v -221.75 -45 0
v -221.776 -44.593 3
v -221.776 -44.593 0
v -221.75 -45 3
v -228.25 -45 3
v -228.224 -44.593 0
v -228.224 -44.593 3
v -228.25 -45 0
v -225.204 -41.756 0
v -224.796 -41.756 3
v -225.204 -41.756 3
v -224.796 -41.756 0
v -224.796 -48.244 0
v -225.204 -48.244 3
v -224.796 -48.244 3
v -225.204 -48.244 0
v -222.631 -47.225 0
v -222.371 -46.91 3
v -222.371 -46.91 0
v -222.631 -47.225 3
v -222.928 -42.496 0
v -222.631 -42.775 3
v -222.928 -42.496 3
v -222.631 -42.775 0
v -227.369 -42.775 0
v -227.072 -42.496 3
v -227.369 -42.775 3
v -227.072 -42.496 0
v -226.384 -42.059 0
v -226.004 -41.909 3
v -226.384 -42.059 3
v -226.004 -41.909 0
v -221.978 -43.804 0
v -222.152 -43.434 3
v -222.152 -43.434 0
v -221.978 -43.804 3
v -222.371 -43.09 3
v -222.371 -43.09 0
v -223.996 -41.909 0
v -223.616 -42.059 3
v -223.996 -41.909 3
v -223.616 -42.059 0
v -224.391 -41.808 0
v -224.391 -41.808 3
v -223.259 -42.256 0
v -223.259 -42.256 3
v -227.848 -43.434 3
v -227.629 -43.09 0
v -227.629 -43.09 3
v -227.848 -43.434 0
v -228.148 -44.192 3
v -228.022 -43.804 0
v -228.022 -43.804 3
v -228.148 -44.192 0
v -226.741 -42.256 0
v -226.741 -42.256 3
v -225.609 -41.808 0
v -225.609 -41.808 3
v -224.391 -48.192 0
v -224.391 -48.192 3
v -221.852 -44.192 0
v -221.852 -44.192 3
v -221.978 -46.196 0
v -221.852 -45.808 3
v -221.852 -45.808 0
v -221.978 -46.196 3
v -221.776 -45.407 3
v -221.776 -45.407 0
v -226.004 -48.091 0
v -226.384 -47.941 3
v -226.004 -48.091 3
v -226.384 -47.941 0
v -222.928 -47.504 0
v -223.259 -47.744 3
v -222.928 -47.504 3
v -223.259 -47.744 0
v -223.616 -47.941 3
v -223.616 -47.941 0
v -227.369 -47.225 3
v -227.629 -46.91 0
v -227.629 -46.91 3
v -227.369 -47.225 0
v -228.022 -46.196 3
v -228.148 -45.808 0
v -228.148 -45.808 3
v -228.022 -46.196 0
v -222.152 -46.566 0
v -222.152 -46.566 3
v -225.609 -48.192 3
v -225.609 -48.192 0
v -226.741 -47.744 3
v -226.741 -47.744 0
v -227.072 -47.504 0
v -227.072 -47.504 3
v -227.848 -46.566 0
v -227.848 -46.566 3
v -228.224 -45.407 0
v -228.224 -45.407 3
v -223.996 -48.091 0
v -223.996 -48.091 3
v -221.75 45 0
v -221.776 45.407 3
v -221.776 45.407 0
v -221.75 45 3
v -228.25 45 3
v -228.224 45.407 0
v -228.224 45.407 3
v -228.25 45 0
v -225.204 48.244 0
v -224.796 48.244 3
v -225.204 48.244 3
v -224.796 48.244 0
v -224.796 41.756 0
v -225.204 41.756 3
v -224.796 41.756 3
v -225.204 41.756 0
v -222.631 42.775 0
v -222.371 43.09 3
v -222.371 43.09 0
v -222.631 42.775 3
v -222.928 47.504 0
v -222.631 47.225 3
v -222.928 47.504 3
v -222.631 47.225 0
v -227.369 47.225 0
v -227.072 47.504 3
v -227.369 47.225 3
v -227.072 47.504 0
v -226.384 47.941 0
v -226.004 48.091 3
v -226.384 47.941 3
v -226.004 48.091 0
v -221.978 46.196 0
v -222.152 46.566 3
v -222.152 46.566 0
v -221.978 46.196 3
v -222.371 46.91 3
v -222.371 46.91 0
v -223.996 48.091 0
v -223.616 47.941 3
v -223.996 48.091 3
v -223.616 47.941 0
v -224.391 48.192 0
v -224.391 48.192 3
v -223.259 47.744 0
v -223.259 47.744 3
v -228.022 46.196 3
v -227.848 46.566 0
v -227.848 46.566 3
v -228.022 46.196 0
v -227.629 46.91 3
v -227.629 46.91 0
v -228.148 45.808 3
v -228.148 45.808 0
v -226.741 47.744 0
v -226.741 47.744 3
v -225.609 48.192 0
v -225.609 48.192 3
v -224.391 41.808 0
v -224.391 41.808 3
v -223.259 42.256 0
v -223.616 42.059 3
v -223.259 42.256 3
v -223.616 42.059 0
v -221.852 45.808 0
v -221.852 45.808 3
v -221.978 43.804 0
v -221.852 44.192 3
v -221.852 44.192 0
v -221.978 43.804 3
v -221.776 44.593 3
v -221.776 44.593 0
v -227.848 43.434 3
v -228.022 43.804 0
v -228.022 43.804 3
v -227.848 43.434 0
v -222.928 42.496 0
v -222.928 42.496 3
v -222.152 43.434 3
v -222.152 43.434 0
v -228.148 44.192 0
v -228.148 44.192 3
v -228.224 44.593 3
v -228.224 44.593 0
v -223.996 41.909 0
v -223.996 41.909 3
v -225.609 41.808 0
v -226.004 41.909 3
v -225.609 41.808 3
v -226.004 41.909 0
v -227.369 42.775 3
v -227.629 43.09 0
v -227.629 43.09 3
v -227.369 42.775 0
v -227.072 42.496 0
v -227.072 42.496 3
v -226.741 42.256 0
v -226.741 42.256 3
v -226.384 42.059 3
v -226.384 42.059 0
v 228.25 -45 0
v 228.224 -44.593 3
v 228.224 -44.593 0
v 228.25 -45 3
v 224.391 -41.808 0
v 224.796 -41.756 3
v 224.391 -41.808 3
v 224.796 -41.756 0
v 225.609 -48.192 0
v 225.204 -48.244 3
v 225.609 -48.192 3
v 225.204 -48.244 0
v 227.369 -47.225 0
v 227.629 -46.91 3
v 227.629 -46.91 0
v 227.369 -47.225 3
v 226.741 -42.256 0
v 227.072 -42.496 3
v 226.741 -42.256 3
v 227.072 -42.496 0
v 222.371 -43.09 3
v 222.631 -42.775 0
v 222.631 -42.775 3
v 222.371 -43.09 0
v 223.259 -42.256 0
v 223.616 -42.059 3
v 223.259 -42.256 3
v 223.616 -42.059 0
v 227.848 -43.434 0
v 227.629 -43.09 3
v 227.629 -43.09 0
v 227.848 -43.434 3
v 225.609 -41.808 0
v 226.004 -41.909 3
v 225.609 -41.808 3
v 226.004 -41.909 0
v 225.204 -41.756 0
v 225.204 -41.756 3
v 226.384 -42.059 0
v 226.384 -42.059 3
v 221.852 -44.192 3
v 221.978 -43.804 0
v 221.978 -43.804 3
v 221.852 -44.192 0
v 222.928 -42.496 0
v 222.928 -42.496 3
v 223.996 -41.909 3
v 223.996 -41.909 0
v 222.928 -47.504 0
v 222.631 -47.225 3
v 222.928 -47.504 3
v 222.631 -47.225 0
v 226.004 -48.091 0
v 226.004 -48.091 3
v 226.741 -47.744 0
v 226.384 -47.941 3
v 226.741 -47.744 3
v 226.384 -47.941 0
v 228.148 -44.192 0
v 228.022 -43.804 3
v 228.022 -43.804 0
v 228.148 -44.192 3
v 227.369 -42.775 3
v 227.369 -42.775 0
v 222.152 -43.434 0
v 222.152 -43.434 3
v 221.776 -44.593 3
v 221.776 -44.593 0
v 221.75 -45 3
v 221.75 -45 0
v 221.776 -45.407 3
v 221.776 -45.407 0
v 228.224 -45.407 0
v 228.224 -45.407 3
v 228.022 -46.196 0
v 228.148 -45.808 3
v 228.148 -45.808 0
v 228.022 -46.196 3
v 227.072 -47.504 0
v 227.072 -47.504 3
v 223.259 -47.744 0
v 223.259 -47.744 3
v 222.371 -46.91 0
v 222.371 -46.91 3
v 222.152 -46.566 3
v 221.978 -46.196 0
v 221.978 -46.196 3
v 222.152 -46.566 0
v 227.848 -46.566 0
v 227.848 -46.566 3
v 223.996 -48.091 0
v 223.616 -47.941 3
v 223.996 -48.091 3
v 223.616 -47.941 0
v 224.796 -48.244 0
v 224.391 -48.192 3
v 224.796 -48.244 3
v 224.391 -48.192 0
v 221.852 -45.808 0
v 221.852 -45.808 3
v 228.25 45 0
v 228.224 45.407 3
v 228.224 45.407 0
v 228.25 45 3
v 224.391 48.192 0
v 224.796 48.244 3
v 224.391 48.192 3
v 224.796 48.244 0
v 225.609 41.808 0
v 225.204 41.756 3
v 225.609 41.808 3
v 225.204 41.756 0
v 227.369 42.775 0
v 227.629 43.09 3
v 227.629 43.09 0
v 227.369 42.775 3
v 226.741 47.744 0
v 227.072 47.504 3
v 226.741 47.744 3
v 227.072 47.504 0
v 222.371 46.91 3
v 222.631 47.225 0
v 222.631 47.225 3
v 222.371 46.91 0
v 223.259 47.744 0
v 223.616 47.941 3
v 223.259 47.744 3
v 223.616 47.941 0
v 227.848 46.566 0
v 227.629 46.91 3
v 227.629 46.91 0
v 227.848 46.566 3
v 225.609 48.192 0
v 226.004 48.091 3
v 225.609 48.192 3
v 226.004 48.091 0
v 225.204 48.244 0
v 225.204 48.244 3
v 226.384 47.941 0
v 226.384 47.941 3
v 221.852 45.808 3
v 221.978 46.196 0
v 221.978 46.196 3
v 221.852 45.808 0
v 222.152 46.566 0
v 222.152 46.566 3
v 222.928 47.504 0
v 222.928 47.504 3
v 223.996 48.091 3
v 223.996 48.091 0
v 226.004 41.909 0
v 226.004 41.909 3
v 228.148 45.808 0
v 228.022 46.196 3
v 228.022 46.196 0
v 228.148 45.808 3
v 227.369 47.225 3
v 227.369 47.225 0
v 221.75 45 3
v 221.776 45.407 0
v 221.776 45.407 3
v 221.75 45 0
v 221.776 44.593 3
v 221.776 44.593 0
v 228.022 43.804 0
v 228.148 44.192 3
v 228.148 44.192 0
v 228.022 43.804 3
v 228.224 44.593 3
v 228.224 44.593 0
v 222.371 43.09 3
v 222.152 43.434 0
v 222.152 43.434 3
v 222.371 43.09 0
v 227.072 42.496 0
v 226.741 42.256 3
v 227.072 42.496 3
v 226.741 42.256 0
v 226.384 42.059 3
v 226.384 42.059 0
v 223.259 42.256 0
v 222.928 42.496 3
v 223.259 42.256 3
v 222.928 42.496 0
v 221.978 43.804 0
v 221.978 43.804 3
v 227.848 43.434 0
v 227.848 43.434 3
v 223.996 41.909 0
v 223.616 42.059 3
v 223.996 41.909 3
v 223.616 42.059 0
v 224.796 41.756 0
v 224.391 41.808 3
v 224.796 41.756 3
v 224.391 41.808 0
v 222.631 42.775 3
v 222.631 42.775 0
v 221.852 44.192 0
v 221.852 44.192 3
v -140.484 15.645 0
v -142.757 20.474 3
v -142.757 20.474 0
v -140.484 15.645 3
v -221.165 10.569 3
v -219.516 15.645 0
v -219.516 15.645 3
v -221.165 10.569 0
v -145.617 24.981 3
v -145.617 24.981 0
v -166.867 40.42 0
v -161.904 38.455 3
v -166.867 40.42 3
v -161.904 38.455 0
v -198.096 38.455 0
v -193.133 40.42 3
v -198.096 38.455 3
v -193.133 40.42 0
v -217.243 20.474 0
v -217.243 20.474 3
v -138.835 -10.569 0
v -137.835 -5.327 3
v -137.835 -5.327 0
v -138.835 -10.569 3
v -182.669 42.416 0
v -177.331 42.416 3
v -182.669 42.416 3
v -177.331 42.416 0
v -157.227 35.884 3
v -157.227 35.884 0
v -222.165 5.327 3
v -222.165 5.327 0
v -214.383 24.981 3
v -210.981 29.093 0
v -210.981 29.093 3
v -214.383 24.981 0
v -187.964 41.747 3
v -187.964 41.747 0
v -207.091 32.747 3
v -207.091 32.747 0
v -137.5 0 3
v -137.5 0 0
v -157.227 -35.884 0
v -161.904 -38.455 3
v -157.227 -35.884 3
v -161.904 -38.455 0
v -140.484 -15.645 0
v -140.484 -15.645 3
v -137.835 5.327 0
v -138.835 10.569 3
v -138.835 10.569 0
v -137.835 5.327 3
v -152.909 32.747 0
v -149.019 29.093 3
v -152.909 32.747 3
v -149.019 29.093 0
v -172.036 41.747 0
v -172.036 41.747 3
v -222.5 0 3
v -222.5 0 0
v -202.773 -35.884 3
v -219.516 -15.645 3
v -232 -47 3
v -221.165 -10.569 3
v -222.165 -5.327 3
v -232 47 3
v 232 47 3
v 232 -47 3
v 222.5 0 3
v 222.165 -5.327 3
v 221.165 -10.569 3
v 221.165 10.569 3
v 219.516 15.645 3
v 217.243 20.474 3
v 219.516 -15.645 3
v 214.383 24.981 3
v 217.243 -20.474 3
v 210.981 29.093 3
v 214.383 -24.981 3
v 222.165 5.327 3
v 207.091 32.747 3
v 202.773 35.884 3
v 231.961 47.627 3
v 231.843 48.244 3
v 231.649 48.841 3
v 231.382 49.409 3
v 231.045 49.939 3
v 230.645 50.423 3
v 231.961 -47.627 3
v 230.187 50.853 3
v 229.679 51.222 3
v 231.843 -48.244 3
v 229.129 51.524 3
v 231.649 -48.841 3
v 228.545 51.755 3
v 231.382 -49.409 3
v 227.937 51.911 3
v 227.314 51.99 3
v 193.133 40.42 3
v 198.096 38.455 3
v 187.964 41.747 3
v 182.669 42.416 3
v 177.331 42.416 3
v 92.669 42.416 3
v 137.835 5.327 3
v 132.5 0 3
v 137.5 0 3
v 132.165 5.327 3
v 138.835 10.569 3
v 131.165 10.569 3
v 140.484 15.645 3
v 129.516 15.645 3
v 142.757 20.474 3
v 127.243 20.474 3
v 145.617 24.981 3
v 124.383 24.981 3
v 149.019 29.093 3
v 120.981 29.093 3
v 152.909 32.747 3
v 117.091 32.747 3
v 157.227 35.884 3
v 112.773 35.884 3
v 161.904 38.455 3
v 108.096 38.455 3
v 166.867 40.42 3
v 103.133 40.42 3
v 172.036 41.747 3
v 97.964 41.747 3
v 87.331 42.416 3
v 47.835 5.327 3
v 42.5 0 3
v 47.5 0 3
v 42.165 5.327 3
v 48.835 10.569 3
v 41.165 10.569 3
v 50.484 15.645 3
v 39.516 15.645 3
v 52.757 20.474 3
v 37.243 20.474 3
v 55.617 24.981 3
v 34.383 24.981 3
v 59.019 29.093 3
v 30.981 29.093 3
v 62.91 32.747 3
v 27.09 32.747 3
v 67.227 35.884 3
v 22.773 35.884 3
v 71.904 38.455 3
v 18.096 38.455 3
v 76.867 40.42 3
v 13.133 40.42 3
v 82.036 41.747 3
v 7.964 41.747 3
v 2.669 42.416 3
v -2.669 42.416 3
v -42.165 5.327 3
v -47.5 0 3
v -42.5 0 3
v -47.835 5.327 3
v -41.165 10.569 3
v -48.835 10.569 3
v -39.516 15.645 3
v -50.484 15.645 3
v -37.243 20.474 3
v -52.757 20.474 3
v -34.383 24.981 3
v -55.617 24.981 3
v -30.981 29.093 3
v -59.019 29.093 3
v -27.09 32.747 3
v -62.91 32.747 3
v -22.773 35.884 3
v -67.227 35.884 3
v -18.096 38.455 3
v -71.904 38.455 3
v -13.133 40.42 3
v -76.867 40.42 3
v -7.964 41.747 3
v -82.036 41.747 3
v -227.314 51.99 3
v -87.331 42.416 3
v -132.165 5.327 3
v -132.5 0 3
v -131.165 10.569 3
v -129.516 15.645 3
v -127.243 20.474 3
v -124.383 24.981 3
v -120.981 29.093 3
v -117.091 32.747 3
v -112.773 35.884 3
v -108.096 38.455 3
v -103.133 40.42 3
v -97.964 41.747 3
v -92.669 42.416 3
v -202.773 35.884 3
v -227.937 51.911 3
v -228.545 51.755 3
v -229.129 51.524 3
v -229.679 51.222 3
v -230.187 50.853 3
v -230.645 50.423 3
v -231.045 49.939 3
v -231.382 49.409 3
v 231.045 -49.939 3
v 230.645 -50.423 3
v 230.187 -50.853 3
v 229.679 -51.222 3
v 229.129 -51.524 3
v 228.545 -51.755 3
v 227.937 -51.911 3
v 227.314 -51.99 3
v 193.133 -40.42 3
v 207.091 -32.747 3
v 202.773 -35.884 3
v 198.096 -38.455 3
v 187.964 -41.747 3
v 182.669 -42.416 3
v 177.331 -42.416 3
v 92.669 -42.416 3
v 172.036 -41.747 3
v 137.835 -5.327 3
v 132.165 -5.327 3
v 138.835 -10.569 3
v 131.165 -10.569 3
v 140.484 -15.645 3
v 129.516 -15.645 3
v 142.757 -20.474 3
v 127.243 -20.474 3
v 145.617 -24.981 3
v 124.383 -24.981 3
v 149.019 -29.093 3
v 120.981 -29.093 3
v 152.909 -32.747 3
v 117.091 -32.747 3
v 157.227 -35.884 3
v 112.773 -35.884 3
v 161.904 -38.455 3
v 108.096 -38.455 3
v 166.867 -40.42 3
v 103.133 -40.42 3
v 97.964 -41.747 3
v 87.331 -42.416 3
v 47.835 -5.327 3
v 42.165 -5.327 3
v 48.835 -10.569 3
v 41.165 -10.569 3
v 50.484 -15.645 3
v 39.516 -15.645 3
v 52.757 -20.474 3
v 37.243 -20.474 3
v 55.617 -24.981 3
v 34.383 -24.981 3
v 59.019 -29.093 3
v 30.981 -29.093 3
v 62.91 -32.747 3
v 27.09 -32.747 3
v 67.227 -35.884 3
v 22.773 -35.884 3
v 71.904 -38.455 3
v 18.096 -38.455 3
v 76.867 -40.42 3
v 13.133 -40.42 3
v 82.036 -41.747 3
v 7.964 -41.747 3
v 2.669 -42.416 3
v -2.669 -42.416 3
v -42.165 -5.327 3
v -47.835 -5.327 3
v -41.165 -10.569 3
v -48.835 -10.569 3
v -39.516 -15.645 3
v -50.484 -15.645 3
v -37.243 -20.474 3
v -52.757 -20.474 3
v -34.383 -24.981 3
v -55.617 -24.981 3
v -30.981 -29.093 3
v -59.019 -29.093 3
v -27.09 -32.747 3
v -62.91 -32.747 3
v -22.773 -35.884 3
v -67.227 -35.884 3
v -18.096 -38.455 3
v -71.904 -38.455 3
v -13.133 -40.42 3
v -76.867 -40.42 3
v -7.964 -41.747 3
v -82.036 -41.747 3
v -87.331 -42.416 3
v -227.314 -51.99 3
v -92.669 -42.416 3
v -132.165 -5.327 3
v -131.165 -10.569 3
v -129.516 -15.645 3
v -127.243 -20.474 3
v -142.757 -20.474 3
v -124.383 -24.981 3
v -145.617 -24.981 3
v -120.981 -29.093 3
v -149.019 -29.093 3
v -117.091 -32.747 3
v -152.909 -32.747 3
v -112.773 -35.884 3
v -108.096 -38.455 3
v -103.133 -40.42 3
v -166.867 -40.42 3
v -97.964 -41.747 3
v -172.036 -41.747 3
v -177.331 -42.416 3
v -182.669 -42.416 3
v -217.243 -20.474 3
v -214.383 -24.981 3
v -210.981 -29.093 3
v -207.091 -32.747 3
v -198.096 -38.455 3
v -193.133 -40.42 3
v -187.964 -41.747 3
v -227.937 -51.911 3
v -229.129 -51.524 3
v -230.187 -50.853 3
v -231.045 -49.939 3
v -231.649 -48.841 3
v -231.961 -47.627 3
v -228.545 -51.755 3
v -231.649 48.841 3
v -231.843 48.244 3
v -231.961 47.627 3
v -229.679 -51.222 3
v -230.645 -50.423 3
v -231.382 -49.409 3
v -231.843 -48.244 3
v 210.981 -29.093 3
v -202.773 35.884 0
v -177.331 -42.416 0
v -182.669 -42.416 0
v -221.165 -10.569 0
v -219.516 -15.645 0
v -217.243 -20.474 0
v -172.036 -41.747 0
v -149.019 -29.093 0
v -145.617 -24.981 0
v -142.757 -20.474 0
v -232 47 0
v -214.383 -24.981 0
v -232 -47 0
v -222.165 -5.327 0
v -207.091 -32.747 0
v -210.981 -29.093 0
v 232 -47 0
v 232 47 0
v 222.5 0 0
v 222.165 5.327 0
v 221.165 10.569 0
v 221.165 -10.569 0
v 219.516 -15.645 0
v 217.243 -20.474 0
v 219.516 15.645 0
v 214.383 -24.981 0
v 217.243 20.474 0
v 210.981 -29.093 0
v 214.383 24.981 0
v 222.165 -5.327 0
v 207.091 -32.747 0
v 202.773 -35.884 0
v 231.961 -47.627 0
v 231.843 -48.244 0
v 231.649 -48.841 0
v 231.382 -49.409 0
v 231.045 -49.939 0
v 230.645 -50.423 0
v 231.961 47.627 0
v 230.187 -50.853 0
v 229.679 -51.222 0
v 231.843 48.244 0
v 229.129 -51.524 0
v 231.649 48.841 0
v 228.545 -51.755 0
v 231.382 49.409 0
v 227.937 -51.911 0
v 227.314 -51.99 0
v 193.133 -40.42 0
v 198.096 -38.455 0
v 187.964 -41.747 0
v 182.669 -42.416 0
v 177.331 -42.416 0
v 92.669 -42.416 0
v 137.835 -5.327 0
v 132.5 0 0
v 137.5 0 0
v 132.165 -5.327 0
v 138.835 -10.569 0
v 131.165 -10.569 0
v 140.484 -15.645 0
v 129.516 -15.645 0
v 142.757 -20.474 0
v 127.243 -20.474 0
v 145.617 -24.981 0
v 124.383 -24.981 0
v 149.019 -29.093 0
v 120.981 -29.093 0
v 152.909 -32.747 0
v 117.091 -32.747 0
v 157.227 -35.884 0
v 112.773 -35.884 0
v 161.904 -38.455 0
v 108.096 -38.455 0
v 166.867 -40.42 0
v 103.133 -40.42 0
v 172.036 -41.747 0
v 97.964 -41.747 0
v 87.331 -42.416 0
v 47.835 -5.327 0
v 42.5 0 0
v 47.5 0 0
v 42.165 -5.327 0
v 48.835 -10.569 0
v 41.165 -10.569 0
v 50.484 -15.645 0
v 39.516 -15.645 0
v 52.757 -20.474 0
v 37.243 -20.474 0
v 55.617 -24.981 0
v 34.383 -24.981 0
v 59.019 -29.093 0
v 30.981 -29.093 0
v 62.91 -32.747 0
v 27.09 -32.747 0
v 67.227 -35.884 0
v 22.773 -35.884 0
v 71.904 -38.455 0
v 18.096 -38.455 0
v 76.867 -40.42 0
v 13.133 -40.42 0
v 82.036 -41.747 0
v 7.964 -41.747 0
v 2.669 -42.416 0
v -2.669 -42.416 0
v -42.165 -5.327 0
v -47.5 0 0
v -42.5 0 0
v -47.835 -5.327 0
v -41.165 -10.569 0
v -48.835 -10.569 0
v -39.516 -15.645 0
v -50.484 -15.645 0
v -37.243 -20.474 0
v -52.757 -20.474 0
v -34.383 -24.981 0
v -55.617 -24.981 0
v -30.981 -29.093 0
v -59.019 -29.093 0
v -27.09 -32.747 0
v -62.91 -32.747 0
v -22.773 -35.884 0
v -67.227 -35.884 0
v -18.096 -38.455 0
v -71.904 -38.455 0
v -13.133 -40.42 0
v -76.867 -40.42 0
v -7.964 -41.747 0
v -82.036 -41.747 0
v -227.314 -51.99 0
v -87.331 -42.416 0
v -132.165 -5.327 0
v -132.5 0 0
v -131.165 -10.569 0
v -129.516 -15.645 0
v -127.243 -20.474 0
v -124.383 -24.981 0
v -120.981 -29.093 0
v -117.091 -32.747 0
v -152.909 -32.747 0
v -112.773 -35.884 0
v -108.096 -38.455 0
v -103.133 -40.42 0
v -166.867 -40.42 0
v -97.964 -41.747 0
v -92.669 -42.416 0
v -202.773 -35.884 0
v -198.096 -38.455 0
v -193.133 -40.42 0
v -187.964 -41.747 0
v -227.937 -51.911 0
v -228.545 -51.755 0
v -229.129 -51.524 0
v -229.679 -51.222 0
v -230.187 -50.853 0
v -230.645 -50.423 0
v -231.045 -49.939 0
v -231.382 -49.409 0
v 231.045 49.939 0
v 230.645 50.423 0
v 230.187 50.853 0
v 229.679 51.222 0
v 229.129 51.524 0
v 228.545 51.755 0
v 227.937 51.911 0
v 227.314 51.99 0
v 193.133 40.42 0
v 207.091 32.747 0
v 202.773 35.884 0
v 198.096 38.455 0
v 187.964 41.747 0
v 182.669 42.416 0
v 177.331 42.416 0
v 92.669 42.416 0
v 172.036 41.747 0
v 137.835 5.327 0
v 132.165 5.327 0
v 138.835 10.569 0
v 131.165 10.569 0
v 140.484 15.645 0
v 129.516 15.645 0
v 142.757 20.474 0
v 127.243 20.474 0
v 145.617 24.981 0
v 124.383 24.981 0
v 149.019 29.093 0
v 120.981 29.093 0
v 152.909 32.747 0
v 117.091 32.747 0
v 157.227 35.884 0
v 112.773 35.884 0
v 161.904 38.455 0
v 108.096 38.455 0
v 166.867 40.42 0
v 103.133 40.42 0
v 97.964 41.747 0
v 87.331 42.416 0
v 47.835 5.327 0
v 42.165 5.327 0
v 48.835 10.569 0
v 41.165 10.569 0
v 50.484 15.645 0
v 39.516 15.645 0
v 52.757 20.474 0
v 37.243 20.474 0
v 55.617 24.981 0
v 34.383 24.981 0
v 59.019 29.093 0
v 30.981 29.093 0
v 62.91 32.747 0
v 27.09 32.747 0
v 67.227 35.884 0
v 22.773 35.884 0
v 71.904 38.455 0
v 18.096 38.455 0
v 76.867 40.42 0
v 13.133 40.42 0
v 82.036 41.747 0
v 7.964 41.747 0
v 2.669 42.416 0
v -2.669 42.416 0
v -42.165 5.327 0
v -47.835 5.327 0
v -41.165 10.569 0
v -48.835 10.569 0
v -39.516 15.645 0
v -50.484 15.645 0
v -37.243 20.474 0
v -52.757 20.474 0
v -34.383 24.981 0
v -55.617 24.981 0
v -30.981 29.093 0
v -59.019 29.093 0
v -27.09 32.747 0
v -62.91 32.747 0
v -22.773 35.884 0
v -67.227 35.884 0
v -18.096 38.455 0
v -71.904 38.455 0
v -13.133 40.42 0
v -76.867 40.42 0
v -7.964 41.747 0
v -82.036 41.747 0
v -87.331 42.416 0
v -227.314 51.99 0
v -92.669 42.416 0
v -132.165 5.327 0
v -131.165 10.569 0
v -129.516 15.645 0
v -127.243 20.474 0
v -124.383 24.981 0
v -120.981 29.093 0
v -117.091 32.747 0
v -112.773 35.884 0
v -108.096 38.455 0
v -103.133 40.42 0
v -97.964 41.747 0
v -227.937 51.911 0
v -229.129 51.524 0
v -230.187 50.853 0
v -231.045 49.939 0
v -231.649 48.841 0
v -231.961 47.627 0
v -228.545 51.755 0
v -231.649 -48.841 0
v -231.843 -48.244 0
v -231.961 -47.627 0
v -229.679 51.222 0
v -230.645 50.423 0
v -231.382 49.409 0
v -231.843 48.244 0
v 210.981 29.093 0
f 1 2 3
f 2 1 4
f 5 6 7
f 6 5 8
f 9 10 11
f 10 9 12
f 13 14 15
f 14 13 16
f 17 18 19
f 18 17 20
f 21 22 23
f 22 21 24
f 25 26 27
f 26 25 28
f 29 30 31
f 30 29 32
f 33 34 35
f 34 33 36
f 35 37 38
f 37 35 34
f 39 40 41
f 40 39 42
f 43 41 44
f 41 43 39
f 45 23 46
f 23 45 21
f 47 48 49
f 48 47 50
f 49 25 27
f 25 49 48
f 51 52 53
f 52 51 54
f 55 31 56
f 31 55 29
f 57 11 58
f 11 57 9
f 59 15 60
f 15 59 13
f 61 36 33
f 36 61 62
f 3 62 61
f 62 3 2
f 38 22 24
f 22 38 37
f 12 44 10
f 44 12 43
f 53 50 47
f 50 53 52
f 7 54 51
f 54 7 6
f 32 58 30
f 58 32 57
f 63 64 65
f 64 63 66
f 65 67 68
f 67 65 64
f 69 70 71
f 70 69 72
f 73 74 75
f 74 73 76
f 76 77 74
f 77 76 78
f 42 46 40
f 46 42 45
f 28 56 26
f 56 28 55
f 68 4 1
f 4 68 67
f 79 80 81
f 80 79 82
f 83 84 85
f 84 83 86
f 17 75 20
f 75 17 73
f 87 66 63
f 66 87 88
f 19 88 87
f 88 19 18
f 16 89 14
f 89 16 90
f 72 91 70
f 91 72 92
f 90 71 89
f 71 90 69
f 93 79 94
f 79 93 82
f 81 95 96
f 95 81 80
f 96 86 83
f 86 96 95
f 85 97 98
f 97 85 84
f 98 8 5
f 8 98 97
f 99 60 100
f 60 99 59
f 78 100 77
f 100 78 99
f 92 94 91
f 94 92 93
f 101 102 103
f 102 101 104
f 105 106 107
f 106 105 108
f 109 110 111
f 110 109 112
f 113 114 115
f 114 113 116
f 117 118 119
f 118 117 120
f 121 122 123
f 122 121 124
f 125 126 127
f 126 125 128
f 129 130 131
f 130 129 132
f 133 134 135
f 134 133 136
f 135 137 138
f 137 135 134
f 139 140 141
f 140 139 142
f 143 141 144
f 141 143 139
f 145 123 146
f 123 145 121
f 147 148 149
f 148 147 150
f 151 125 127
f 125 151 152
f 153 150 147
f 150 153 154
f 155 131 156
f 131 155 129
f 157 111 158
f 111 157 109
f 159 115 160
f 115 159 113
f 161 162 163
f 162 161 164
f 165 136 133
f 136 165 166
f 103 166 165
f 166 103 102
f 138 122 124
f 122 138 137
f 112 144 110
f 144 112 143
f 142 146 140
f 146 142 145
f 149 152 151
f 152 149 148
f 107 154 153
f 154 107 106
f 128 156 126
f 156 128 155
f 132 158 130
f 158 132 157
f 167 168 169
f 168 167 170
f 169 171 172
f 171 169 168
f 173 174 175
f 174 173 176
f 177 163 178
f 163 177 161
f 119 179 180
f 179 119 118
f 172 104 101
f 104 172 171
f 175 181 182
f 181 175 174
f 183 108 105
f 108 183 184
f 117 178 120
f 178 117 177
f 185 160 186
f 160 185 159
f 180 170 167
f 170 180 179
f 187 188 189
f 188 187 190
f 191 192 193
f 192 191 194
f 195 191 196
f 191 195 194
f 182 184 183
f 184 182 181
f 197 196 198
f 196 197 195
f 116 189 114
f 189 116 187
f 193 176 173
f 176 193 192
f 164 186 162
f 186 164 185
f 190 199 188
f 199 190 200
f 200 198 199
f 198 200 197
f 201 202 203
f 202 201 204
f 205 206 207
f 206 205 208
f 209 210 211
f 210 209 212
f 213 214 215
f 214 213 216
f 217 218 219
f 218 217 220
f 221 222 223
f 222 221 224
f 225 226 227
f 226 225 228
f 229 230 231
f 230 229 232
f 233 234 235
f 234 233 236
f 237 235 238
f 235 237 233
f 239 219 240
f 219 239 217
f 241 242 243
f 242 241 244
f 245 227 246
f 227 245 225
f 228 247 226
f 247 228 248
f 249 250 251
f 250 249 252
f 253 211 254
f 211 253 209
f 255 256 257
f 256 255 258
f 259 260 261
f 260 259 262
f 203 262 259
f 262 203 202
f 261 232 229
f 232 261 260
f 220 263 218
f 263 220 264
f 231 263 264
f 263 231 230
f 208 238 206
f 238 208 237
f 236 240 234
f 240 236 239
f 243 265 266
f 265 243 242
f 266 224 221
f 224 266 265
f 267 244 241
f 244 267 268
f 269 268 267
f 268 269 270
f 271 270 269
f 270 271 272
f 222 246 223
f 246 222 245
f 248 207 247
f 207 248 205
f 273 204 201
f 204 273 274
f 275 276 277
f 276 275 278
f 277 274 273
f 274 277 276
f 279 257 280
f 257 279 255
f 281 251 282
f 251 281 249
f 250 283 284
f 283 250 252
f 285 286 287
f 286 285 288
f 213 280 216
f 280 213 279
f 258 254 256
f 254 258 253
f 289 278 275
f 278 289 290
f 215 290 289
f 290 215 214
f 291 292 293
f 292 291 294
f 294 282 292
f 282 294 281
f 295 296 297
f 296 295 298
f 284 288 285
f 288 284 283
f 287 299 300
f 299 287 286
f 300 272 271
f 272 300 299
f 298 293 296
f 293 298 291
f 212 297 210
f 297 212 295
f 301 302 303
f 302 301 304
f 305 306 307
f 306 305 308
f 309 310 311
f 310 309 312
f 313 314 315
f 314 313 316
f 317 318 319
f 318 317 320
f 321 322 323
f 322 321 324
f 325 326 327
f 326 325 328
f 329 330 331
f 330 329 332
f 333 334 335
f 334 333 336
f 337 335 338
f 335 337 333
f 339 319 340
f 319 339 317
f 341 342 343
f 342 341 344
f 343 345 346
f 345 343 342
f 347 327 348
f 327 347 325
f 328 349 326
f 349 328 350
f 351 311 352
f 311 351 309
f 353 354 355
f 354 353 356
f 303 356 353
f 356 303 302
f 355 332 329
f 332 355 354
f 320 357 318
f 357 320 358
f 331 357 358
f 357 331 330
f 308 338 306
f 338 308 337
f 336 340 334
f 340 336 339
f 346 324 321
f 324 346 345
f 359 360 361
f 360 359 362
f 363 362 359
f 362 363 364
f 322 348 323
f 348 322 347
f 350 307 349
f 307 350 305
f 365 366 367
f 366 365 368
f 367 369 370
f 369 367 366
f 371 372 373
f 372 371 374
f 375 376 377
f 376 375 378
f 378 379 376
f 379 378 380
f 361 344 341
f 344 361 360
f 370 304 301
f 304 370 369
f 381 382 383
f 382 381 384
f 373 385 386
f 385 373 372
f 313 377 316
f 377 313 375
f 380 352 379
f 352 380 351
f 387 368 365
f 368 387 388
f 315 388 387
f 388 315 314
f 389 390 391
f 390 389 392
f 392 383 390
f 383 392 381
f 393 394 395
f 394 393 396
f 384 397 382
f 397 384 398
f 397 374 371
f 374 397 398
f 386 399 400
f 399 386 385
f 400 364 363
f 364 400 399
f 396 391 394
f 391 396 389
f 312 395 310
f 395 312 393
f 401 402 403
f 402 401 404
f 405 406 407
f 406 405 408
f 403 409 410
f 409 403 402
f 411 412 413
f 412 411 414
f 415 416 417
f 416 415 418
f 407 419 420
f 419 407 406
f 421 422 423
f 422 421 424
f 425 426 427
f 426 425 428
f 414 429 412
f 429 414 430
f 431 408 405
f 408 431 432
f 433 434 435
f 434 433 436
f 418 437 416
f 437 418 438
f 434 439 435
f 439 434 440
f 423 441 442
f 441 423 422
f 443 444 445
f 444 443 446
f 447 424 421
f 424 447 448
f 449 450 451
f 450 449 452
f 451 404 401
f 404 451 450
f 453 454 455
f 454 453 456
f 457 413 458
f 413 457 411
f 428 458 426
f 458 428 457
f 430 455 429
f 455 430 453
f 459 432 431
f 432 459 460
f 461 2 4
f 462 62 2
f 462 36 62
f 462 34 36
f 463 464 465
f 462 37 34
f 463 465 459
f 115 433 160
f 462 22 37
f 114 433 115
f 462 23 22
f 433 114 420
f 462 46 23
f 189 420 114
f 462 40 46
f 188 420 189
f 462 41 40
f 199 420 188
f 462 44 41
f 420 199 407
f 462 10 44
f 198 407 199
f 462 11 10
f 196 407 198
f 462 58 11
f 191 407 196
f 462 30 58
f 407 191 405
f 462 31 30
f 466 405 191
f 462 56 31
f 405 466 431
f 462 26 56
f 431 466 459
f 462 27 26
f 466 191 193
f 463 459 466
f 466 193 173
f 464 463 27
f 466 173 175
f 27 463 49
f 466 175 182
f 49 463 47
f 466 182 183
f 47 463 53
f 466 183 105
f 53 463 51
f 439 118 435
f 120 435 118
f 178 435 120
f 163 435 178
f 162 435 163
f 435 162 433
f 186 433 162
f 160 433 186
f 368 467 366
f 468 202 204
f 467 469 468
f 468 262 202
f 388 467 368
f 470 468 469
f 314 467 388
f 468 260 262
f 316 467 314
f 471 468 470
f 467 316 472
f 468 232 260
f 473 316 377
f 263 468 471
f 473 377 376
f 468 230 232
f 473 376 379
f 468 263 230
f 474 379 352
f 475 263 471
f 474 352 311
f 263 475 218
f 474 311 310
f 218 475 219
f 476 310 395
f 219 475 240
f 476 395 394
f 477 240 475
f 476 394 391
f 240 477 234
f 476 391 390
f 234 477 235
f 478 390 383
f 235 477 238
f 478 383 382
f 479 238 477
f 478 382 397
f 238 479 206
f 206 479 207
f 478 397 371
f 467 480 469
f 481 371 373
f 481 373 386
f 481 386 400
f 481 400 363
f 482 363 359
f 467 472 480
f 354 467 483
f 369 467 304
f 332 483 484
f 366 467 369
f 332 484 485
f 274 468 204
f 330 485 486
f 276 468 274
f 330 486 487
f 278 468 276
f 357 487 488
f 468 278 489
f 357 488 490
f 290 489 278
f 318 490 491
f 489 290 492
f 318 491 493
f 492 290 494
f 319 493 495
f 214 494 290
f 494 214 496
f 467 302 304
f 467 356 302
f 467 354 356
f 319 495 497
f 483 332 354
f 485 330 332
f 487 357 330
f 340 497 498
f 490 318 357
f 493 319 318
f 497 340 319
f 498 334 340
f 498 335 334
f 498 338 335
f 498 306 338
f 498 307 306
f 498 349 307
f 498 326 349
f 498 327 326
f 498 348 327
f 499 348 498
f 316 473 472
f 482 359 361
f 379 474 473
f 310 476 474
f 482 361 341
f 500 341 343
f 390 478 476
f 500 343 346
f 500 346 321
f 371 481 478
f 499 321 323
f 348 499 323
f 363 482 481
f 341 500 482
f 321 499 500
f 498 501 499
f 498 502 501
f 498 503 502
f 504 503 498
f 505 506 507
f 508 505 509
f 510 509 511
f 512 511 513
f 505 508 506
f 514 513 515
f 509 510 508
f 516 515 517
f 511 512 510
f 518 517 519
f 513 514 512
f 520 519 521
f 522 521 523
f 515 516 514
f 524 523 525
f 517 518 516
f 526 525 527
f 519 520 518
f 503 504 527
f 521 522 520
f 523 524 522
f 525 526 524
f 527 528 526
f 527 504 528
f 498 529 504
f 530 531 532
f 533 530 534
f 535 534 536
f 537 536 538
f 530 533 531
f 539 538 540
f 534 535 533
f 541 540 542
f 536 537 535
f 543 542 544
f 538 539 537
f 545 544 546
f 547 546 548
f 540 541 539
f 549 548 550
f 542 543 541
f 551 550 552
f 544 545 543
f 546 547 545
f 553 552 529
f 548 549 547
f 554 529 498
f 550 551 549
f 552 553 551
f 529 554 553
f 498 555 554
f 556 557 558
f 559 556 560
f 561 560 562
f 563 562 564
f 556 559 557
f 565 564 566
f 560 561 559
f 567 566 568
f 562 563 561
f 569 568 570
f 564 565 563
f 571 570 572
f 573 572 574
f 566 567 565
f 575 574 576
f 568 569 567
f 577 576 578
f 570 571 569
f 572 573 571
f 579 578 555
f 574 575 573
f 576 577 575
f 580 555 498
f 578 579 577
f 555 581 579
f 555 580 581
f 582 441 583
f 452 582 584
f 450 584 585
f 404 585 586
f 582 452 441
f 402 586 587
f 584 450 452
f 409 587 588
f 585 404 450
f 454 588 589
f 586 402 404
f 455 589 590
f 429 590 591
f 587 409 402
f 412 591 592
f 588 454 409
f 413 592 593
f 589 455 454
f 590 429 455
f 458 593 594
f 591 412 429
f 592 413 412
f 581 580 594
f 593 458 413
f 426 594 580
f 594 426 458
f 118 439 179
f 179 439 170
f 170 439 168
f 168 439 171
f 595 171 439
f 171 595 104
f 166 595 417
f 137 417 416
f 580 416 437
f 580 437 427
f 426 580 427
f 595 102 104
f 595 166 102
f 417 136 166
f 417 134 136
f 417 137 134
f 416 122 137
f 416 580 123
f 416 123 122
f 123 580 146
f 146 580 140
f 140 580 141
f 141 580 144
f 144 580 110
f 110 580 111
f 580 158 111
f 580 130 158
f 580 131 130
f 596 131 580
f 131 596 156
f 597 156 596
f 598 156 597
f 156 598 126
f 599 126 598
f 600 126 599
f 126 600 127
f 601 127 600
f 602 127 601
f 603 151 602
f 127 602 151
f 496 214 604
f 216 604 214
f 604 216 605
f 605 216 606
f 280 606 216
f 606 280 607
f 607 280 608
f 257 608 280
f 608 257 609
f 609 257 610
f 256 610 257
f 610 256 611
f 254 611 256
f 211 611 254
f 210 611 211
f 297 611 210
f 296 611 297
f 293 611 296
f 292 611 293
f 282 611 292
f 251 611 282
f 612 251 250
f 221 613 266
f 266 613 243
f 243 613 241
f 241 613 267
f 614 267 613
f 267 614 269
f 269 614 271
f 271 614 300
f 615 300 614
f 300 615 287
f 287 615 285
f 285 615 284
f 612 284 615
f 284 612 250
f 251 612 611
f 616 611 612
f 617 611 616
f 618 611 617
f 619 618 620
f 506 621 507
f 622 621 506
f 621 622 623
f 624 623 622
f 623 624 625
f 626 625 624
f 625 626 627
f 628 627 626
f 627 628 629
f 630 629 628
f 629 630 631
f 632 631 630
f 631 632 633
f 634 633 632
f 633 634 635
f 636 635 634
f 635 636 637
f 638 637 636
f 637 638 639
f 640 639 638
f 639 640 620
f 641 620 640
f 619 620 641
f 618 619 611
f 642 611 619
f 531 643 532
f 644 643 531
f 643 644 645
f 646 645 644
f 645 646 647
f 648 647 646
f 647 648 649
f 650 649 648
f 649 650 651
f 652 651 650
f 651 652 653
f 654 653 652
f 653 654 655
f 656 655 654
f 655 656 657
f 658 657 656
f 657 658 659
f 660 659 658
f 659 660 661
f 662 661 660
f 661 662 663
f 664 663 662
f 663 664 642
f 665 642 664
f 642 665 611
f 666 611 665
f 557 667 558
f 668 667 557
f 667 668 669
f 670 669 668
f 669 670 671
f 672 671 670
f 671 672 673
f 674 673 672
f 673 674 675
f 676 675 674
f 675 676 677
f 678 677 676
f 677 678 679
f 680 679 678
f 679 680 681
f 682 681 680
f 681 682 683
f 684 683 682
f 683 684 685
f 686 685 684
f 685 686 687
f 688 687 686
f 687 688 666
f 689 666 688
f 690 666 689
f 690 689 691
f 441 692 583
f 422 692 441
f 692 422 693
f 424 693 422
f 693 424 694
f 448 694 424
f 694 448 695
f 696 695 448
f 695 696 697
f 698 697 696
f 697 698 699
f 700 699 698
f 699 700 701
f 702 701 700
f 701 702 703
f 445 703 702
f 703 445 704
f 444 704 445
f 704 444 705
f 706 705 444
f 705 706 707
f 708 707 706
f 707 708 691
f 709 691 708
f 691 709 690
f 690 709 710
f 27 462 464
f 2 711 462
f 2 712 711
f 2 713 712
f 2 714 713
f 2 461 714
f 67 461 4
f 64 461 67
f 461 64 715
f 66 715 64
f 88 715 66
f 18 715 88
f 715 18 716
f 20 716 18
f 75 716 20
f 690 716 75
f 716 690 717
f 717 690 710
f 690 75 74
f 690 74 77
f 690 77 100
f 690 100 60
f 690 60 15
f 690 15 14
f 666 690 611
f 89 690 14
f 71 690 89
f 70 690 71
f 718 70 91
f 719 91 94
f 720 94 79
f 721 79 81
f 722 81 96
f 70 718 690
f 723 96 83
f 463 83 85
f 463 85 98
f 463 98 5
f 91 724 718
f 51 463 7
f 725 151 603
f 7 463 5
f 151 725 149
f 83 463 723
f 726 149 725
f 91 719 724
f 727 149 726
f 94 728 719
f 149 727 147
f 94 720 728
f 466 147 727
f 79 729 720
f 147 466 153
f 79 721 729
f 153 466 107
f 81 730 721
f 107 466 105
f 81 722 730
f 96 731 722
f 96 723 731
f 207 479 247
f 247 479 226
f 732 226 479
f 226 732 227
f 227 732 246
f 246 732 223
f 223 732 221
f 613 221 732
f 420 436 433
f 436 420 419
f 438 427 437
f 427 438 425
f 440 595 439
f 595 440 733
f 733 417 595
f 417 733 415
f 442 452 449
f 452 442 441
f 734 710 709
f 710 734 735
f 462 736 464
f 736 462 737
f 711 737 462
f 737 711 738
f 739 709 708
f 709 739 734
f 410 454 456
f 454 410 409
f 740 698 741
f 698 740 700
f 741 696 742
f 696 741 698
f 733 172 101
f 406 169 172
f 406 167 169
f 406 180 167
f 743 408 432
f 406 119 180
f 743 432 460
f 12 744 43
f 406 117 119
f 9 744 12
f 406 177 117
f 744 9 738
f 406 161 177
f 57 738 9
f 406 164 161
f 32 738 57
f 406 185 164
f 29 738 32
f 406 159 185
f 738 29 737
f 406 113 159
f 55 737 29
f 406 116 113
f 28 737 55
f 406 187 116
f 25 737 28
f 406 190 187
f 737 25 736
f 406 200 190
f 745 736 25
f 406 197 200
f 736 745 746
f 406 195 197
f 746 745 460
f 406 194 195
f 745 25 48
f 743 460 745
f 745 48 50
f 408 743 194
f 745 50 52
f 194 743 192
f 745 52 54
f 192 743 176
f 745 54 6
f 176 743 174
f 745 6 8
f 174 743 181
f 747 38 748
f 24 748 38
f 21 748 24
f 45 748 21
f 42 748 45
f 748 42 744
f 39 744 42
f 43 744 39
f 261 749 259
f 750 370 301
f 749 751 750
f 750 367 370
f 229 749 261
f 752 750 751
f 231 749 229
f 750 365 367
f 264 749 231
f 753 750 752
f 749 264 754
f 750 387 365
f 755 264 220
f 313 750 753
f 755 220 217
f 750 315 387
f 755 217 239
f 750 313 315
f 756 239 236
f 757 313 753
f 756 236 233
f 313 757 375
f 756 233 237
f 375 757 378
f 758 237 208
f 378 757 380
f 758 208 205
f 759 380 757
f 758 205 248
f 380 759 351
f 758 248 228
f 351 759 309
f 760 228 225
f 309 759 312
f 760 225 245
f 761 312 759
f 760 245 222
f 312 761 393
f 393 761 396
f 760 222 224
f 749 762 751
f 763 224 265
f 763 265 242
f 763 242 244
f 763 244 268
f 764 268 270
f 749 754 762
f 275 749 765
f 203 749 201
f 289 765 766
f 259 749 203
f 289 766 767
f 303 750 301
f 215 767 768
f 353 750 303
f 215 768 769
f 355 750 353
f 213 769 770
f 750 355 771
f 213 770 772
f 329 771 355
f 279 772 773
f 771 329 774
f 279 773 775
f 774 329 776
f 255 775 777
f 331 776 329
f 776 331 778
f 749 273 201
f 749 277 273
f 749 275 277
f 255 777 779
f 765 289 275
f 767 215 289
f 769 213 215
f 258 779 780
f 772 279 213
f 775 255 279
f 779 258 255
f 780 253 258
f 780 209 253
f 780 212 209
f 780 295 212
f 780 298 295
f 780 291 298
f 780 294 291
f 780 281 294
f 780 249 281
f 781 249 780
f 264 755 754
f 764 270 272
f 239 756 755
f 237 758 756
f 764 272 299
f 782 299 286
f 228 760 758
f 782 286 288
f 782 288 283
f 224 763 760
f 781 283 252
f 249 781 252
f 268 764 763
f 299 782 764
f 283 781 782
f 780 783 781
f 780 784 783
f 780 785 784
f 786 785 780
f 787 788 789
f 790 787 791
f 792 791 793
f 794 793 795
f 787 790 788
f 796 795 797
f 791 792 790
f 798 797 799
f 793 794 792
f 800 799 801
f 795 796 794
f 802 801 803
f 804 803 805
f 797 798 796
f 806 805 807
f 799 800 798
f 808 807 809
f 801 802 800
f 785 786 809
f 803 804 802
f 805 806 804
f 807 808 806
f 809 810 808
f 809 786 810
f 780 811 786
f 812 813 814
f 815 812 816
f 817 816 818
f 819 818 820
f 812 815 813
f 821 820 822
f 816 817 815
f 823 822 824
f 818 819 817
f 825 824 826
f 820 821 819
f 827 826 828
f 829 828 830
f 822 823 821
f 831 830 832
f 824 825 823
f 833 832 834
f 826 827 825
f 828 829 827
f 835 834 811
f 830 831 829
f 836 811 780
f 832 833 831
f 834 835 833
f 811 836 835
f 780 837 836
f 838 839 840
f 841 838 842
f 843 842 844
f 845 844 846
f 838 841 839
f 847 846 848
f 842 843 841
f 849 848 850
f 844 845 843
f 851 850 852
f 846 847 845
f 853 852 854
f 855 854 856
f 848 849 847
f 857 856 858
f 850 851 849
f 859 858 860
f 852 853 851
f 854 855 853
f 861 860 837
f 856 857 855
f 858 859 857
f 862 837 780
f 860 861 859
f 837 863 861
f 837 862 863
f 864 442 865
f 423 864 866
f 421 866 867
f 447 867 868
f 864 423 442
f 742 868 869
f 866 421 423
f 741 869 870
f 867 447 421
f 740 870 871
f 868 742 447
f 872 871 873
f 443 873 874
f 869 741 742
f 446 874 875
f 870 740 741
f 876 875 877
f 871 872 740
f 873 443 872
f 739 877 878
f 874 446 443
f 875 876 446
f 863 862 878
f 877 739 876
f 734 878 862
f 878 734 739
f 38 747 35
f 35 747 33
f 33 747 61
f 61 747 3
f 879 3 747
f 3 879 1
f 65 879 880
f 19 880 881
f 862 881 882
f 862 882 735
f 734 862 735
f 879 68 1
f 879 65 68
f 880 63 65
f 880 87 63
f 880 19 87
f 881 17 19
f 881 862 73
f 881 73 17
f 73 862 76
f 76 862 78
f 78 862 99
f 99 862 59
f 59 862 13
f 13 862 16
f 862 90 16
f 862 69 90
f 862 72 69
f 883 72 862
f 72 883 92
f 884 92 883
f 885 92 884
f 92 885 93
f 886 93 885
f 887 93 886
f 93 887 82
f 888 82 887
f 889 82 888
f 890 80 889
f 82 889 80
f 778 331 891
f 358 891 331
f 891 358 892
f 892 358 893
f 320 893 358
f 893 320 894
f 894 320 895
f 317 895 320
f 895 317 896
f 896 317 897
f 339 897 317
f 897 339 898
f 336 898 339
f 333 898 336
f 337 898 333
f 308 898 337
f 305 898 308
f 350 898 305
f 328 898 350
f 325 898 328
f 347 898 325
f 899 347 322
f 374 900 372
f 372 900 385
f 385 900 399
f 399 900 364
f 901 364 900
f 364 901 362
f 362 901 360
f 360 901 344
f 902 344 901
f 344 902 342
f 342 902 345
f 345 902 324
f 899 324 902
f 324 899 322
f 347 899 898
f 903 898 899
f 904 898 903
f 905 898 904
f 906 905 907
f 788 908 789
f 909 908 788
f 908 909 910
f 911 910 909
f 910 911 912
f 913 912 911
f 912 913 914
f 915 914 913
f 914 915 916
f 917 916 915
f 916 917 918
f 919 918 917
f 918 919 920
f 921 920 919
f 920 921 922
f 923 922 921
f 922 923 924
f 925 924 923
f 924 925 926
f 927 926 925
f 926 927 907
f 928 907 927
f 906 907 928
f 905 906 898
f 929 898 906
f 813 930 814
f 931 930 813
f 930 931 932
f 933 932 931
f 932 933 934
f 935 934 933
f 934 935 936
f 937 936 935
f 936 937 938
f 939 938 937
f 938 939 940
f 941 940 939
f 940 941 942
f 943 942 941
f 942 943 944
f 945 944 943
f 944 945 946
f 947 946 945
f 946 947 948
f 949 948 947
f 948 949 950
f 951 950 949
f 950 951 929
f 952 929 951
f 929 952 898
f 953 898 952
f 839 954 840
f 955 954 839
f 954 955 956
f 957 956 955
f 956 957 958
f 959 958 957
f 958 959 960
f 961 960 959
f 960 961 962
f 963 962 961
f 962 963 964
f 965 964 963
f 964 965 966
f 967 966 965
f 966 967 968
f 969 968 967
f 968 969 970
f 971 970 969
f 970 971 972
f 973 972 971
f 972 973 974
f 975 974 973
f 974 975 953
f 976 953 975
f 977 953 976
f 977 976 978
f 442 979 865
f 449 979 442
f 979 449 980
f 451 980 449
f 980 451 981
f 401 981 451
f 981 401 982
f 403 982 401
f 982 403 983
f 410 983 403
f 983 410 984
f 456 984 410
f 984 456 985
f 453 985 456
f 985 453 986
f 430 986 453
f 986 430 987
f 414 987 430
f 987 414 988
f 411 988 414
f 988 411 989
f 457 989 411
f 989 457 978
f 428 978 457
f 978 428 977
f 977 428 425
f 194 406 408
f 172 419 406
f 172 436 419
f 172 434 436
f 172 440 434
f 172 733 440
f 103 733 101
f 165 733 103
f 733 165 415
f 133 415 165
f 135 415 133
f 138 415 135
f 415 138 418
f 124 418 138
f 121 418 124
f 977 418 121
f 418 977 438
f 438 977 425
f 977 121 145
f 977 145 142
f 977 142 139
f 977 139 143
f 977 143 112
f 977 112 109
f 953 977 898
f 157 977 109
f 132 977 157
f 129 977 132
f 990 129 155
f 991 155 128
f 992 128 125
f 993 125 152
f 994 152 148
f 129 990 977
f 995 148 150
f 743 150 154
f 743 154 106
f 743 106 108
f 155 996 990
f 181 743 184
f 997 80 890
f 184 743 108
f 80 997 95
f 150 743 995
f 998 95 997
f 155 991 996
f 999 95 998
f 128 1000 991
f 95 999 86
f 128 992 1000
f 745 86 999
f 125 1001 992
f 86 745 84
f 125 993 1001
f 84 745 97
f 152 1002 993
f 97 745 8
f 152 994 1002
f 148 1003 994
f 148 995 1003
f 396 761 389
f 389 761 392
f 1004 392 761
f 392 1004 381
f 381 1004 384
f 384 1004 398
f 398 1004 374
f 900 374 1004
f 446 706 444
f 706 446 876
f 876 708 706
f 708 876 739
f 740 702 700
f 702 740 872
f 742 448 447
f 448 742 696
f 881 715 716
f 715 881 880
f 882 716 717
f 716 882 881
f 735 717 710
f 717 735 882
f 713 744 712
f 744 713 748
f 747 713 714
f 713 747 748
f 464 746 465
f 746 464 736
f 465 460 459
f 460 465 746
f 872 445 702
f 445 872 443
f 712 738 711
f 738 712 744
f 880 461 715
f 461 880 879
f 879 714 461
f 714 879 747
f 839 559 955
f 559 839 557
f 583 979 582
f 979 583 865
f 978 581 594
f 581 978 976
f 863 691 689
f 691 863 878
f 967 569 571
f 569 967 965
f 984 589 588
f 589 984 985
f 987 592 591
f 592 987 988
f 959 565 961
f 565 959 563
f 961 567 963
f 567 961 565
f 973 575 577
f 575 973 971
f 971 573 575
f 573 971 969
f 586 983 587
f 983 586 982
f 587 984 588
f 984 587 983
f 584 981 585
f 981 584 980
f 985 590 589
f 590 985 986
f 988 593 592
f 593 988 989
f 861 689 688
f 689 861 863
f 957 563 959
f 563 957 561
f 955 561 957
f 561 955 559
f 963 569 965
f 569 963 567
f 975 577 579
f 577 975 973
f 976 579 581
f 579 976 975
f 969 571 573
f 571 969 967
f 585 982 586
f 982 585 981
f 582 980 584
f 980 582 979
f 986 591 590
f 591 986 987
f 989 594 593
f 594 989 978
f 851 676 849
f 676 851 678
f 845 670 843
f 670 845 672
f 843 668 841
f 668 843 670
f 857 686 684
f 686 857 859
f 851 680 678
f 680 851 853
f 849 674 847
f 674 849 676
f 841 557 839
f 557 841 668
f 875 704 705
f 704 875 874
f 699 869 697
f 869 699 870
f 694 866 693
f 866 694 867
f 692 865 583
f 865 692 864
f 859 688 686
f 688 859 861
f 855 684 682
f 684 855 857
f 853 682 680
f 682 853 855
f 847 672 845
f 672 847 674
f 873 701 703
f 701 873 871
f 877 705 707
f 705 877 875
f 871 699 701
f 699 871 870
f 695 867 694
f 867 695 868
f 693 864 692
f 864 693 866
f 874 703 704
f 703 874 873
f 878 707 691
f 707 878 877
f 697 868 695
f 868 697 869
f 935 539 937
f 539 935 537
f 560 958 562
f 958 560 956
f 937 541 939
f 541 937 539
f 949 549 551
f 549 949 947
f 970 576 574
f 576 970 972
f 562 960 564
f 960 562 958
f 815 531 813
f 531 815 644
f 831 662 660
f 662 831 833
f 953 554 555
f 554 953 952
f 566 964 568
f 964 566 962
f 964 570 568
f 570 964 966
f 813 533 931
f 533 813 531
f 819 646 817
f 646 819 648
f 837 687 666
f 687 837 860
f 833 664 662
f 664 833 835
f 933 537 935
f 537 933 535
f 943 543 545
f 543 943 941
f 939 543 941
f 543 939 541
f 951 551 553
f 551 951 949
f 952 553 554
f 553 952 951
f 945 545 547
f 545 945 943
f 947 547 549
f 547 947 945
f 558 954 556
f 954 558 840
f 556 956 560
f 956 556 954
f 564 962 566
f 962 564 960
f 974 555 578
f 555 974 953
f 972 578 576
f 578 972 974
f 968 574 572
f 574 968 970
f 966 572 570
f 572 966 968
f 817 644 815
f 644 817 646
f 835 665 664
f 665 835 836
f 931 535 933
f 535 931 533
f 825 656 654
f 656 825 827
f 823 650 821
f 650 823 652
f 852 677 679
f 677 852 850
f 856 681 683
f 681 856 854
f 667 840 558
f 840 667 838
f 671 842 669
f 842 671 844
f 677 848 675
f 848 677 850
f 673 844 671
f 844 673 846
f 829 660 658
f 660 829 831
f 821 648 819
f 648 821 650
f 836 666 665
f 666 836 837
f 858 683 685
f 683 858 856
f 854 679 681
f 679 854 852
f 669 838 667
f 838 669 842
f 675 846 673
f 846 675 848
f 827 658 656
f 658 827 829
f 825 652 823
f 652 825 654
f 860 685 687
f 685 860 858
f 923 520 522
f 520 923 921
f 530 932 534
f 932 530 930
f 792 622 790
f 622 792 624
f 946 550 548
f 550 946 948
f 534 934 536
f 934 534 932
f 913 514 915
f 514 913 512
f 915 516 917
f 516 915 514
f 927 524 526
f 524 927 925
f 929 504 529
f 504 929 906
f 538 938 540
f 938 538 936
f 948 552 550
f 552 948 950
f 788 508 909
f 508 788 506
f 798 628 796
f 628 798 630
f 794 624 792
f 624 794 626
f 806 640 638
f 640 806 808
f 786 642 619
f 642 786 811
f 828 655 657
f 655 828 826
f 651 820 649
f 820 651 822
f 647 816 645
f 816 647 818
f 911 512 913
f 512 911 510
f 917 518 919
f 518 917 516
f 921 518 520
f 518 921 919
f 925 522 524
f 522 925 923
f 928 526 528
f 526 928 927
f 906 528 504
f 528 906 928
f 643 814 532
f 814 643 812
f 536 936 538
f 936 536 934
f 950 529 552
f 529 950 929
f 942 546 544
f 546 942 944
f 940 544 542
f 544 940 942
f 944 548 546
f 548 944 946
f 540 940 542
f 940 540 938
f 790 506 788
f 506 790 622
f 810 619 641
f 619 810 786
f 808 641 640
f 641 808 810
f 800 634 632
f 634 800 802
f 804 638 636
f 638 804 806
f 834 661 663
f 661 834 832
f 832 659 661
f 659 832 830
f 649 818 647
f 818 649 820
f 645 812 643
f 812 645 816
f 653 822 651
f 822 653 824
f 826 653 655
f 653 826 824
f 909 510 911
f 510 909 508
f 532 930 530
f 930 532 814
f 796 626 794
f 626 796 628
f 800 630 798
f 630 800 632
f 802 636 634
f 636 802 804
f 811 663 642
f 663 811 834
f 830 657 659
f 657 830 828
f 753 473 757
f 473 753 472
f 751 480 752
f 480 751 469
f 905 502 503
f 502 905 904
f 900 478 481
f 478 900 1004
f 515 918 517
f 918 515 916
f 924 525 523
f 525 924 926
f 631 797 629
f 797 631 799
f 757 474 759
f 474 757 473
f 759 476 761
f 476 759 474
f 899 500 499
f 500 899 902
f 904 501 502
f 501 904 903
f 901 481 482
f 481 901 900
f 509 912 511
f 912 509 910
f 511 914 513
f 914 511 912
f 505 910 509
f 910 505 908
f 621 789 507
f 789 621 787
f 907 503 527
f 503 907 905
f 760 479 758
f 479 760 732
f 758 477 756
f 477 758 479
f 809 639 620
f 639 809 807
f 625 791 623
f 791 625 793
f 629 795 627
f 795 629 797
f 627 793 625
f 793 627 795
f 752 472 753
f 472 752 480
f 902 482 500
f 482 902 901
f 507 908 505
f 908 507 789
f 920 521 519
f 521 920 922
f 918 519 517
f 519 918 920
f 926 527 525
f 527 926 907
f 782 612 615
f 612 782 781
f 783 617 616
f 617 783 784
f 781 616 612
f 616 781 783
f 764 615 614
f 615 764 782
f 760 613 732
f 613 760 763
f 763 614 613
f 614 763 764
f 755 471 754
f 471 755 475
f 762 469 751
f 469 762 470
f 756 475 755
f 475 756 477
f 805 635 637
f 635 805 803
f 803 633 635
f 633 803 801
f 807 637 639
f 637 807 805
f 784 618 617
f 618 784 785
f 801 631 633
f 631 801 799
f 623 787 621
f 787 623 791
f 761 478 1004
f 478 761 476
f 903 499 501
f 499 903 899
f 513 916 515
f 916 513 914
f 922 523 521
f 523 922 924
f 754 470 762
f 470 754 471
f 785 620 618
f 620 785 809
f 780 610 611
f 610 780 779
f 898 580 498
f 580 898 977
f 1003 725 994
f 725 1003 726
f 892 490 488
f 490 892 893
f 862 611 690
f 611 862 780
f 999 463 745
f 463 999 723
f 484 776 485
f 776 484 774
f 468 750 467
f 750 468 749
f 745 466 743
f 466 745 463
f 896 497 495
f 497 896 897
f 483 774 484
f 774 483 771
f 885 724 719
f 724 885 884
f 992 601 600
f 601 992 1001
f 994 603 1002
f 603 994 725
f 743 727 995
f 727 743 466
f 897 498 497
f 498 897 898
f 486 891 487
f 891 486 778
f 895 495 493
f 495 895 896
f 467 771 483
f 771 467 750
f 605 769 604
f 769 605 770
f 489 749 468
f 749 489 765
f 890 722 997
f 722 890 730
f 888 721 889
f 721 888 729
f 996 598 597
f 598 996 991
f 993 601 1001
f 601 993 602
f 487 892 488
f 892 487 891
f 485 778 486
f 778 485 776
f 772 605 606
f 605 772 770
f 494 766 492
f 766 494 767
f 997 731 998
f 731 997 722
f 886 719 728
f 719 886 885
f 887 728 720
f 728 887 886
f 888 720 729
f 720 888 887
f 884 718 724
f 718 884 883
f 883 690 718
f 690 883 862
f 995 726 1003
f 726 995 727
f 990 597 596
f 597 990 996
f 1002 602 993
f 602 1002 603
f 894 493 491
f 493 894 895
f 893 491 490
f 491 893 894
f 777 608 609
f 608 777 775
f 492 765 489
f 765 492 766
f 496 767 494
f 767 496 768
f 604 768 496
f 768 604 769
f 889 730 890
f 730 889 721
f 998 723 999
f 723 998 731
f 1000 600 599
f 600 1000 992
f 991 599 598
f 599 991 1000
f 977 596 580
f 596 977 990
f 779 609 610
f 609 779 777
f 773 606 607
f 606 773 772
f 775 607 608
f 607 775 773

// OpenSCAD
$fn = 50;


difference() {
	union() {
		hull() {
			translate(v = [-227.0000000000, 47.0000000000, 0]) {
				cylinder(h = 3, r = 5);
			}
			translate(v = [227.0000000000, 47.0000000000, 0]) {
				cylinder(h = 3, r = 5);
			}
			translate(v = [-227.0000000000, -47.0000000000, 0]) {
				cylinder(h = 3, r = 5);
			}
			translate(v = [227.0000000000, -47.0000000000, 0]) {
				cylinder(h = 3, r = 5);
			}
		}
	}
	union() {
		#translate(v = [-225.0000000000, -45.0000000000, -100.0000000000]) {
			cylinder(h = 200, r = 3.2500000000);
		}
		#translate(v = [-225.0000000000, 45.0000000000, -100.0000000000]) {
			cylinder(h = 200, r = 3.2500000000);
		}
		#translate(v = [225.0000000000, -45.0000000000, -100.0000000000]) {
			cylinder(h = 200, r = 3.2500000000);
		}
		#translate(v = [225.0000000000, 45.0000000000, -100.0000000000]) {
			cylinder(h = 200, r = 3.2500000000);
		}
		#translate(v = [-180.0000000000, 0, 0]) {
			cylinder(h = 3, r = 42.5000000000);
		}
		#translate(v = [-90.0000000000, 0, 0]) {
			cylinder(h = 3, r = 42.5000000000);
		}
		#cylinder(h = 3, r = 42.5000000000);
		#translate(v = [90.0000000000, 0, 0]) {
			cylinder(h = 3, r = 42.5000000000);
		}
		#translate(v = [180.0000000000, 0, 0]) {
			cylinder(h = 3, r = 42.5000000000);
		}
	}
}
